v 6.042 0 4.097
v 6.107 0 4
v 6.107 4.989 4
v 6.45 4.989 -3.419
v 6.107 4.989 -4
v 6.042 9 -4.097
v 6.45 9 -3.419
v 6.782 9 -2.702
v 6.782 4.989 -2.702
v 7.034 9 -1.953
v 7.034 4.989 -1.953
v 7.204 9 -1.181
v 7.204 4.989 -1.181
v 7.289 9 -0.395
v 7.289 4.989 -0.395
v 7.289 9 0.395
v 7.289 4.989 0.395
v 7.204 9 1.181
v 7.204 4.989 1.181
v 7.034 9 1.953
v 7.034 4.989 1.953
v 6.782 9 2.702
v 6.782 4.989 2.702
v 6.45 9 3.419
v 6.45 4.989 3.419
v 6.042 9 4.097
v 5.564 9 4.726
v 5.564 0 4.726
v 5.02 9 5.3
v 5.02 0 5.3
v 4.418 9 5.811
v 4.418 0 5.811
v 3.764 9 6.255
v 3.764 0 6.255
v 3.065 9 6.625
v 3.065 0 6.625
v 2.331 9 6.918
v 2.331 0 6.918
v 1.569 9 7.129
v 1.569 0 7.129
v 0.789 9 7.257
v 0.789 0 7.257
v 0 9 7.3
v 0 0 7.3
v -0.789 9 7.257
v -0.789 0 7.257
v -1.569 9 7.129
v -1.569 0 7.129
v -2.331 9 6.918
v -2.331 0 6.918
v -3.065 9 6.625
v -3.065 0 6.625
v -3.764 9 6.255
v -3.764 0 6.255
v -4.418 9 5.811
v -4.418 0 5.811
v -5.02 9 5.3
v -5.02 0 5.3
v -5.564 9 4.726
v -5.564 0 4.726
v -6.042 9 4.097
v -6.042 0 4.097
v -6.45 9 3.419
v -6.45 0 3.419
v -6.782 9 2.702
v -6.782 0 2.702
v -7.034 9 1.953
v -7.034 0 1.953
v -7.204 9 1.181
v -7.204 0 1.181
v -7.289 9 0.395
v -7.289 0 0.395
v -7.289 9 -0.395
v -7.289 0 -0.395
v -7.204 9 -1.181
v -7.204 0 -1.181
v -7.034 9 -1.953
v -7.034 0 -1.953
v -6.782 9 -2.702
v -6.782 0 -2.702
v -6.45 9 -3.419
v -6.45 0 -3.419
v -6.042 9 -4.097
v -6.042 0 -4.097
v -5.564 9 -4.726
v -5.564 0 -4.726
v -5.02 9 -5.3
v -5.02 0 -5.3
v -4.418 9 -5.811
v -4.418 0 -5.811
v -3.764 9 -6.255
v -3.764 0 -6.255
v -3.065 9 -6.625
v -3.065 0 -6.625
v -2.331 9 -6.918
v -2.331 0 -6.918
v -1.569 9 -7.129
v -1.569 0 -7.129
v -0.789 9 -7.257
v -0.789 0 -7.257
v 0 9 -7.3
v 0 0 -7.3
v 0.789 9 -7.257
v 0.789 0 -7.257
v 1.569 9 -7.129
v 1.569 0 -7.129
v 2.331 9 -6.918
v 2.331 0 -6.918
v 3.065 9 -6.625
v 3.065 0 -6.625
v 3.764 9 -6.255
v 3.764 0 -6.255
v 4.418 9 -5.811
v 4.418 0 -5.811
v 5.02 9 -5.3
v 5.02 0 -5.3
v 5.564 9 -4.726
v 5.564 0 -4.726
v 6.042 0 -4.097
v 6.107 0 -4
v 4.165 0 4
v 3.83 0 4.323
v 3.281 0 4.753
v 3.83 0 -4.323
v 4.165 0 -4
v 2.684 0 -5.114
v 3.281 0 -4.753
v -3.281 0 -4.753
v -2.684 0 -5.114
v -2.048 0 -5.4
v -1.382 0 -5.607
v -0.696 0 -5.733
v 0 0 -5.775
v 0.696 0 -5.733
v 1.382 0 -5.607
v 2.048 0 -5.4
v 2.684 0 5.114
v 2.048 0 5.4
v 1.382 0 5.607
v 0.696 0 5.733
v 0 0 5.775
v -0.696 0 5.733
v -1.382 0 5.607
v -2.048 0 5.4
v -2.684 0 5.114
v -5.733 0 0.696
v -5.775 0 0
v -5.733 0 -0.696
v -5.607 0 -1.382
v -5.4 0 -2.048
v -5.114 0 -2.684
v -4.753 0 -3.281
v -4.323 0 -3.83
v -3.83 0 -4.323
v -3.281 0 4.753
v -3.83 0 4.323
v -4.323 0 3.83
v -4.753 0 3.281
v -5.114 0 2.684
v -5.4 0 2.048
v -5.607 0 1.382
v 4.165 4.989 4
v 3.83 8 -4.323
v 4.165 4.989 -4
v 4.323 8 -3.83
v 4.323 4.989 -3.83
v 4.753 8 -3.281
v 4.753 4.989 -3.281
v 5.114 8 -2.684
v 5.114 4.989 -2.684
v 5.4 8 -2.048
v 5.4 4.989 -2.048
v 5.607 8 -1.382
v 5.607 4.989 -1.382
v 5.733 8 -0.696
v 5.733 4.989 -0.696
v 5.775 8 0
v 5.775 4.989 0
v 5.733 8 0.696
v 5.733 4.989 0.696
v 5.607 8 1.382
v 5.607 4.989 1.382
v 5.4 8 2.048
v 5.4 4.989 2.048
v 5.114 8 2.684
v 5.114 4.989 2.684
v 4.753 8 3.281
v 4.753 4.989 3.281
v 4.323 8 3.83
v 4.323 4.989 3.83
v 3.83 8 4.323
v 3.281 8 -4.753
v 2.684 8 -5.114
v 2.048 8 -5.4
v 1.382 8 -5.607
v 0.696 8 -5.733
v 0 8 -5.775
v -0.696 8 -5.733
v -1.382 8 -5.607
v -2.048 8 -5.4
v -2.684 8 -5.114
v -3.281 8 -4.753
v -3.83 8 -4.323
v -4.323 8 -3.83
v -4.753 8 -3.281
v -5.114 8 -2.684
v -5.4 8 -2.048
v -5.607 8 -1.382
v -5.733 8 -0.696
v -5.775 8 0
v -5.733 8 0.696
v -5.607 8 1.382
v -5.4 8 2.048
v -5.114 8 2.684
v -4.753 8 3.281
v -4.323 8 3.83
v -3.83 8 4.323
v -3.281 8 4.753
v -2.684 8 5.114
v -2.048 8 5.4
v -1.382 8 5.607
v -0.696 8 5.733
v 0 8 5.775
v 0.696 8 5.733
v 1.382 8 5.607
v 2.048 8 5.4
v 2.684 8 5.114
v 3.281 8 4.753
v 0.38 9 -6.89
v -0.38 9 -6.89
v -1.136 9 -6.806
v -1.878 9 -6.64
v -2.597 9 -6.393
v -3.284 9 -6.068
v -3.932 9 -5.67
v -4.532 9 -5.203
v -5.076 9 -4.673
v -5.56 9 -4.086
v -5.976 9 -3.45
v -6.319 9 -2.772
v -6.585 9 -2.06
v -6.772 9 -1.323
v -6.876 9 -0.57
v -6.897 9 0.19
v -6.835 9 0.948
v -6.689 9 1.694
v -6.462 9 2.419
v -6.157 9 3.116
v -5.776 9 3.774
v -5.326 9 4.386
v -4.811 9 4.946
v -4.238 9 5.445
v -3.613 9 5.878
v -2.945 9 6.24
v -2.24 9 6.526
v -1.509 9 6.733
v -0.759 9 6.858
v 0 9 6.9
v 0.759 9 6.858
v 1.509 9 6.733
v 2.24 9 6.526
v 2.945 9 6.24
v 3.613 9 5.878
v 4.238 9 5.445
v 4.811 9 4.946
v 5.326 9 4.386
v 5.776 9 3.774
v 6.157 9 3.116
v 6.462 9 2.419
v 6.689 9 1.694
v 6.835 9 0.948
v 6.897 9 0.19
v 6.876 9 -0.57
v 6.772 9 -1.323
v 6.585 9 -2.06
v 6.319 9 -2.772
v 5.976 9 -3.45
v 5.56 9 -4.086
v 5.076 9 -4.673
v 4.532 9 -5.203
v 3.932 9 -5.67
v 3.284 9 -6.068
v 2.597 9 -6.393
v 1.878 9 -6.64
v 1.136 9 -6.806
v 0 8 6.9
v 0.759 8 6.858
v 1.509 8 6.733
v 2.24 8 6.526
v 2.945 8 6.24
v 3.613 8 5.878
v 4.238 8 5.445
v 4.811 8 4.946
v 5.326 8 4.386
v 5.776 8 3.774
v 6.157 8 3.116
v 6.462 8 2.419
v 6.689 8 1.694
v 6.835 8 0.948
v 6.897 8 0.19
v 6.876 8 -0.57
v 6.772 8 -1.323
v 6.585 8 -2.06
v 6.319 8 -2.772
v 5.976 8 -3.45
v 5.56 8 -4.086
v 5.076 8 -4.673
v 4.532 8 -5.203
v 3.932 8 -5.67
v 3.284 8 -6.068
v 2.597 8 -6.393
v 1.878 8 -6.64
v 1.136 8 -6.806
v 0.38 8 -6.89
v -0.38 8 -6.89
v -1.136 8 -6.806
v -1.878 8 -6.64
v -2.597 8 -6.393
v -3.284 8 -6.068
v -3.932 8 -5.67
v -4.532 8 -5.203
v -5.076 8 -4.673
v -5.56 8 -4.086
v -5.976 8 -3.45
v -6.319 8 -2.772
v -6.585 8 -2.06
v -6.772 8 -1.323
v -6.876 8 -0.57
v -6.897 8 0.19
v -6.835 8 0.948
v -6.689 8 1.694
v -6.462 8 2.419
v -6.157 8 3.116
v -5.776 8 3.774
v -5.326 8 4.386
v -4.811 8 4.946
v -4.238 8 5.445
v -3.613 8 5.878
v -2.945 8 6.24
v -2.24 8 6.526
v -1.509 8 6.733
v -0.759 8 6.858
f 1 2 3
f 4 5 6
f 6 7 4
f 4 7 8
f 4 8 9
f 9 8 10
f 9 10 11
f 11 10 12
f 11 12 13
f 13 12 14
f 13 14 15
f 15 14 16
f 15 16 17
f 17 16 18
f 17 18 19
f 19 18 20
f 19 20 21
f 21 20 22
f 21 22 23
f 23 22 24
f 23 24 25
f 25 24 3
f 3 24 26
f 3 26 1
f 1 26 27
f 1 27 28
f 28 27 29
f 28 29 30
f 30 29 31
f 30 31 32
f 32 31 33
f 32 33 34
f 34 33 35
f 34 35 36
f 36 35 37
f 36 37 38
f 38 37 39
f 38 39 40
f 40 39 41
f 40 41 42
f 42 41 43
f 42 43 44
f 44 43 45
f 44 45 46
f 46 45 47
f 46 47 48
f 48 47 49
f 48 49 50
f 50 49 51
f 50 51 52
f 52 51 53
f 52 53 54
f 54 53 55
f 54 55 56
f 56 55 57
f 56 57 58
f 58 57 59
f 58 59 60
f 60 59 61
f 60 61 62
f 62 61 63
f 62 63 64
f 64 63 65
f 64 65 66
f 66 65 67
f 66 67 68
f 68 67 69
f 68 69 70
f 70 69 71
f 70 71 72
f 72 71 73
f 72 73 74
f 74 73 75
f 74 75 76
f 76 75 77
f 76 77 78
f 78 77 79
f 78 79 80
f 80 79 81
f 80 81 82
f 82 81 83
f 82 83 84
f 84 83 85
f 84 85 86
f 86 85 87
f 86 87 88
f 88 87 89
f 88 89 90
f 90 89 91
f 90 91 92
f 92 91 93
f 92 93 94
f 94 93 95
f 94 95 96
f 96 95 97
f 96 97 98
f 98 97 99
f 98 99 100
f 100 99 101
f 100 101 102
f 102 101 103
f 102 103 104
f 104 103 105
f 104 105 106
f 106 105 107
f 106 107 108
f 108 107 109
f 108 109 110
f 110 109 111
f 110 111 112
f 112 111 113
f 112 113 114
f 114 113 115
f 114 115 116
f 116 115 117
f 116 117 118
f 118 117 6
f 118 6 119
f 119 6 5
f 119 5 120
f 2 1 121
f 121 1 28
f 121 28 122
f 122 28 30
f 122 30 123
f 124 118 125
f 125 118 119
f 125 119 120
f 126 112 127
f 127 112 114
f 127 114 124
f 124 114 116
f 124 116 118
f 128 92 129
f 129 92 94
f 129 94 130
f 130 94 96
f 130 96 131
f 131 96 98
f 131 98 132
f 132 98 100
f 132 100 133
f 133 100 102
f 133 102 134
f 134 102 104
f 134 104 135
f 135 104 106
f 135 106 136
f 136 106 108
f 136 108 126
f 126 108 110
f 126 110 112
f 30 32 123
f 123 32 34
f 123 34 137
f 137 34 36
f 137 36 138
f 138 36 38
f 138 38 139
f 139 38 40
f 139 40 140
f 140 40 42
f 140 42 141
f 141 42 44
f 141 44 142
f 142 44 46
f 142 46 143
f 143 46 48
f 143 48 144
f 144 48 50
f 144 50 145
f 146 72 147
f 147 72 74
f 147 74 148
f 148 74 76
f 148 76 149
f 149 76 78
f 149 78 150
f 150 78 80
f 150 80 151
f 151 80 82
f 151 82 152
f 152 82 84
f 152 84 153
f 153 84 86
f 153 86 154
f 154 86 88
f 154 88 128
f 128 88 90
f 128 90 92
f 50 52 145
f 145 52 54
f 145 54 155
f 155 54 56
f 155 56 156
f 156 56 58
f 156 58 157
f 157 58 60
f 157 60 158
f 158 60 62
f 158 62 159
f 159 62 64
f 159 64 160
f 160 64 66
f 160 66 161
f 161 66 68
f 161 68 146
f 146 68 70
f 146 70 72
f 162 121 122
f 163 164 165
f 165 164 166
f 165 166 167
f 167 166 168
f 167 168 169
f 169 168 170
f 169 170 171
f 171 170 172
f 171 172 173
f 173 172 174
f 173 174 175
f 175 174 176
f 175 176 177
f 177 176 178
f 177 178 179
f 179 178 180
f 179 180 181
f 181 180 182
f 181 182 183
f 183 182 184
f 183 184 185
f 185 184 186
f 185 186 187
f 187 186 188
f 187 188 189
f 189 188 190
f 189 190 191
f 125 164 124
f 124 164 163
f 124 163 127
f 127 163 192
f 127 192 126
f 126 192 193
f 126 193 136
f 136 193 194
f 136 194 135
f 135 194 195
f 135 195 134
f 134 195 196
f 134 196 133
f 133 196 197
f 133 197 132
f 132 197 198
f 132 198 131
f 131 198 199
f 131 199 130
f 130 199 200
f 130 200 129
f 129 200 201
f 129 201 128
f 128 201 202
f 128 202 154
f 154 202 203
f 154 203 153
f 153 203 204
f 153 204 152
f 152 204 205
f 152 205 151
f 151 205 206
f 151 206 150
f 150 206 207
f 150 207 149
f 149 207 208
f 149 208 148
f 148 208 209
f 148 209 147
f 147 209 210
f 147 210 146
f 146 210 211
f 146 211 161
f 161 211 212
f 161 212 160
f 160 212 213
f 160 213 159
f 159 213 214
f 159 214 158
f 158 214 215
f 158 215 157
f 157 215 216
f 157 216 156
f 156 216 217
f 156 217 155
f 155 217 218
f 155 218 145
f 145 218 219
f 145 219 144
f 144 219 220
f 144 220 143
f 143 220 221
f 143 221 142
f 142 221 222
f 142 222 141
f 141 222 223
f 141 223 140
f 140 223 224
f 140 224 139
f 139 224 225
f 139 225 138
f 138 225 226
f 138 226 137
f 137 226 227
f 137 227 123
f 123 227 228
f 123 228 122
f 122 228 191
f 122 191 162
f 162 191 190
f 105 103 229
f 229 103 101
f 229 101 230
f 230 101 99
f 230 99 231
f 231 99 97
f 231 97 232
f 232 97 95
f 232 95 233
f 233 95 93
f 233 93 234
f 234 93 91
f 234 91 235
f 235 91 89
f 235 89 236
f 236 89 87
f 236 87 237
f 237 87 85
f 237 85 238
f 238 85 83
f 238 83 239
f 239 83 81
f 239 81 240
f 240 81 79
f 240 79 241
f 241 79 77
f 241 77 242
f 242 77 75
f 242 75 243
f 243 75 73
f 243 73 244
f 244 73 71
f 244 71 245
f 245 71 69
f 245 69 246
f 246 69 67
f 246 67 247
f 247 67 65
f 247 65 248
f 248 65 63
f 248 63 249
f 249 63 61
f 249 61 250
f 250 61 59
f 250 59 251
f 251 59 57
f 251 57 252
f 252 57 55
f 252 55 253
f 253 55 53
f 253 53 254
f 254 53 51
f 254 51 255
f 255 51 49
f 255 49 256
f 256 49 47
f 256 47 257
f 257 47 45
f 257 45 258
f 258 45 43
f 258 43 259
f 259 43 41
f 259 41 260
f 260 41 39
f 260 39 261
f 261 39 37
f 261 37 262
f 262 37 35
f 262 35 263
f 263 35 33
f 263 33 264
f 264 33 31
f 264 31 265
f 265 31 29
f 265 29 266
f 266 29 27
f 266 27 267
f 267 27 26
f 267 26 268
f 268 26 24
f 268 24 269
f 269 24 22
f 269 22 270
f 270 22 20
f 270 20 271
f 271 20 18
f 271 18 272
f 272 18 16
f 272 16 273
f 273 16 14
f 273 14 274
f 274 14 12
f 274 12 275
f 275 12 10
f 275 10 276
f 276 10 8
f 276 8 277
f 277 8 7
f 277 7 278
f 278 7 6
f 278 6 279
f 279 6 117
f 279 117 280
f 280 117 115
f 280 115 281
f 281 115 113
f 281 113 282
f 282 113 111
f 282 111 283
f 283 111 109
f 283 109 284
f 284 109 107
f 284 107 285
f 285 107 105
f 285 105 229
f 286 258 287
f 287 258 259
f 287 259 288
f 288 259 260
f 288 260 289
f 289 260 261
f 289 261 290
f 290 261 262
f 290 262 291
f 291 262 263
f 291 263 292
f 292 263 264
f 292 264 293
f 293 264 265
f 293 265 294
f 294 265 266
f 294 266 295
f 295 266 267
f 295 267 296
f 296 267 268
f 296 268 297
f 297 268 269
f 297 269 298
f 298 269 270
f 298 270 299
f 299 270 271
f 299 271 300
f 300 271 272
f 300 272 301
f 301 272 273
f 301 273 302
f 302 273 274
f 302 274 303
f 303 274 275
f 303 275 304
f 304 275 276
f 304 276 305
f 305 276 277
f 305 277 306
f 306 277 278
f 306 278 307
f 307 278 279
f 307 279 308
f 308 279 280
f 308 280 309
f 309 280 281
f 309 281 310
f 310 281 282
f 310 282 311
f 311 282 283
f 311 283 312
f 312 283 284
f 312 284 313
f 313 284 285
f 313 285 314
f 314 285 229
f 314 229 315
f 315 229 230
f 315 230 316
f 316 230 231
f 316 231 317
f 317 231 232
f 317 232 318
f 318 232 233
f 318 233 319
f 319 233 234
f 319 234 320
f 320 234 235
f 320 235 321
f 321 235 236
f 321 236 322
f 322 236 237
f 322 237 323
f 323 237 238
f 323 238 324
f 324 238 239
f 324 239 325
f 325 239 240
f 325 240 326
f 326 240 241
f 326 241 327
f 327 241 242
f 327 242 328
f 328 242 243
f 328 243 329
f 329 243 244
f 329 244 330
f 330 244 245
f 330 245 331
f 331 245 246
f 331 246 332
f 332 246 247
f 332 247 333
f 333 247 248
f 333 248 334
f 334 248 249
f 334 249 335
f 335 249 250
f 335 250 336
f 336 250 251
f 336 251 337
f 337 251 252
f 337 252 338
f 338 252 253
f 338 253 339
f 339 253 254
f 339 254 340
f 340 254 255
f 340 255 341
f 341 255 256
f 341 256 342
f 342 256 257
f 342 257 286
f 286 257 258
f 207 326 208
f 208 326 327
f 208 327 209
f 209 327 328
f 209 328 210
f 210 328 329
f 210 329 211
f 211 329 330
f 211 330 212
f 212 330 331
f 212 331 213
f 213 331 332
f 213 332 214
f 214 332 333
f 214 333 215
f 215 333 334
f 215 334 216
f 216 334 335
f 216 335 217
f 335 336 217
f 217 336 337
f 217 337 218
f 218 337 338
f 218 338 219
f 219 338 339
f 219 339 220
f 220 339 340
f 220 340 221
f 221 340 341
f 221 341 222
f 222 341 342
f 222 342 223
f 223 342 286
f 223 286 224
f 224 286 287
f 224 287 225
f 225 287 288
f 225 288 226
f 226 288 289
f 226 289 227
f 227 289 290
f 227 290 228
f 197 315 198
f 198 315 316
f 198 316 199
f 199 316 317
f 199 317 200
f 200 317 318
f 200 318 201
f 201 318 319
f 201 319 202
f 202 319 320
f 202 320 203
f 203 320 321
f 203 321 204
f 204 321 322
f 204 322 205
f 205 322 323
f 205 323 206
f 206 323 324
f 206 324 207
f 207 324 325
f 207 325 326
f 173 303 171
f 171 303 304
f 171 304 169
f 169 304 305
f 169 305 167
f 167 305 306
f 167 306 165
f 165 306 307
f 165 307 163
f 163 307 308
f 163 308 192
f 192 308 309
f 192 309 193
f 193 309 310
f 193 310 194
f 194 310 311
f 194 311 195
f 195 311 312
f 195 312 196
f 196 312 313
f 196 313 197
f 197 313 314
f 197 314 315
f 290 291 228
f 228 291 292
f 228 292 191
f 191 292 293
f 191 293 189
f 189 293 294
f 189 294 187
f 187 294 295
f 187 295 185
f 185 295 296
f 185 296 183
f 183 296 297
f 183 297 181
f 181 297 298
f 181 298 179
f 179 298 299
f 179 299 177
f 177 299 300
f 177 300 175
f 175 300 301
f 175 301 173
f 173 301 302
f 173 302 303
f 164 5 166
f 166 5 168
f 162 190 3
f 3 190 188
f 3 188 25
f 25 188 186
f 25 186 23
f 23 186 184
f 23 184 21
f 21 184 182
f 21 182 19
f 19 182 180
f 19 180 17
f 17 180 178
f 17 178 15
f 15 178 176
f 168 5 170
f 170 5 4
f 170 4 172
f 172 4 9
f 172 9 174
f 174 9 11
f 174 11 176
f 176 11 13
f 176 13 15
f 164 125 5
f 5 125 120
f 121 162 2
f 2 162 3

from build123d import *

# Parameters (mm, degrees)
SKETCH1_R           = 7.3
BOSS_EXTRUDE1_DEPTH = 9
SKETCH2_R           = 6.9
CUT_EXTRUDE1_DEPTH  = 1
SKETCH3_R           = 5
CUT_EXTRUDE2_DEPTH  = 7
SKETCH4_R           = 5.775
CUT_EXTRUDE3_DEPTH  = 9
SKETCH5_W           = 4
SKETCH5_H           = 4.989216575
CUT_EXTRUDE4_DEPTH  = 6


with BuildPart() as part:
    # Sketch1 → Boss-Extrude1 (new body)
    with BuildSketch(Plane(origin=(0, 0, 0), x_dir=(1, 0, 0), z_dir=(0, 1, 0))):
        Circle(SKETCH1_R)
    extrude(amount=BOSS_EXTRUDE1_DEPTH)

    # Sketch2 → Cut-Extrude1 (cut)
    with BuildSketch(Plane(origin=(0, 9, 0), x_dir=(1, 0, 0), z_dir=(0, 1, 0))):
        Circle(SKETCH2_R)
    extrude(amount=-CUT_EXTRUDE1_DEPTH, mode=Mode.SUBTRACT)

    # Sketch3 → Cut-Extrude2 (cut)
    with BuildSketch(Plane.XZ):
        Circle(SKETCH3_R)
    extrude(amount=-CUT_EXTRUDE2_DEPTH, mode=Mode.SUBTRACT)

    # Sketch4 → Cut-Extrude3 (cut, through all)
    with BuildSketch(Plane(origin=(0, 8, 0), x_dir=(1, 0, 0), z_dir=(0, 1, 0))):
        Circle(SKETCH4_R)
    extrude(amount=-CUT_EXTRUDE3_DEPTH, mode=Mode.SUBTRACT)

    # Sketch5 → Cut-Extrude4 (cut)
    with BuildSketch(Plane(origin=(7.3, 0, 0), x_dir=(0, 0, -1), z_dir=(1, 0, 0))):
        with Locations((-2, 2.494608288)):
            Rectangle(SKETCH5_W, SKETCH5_H)
        with Locations((2, 2.494608288)):
            Rectangle(SKETCH5_W, SKETCH5_H)
    extrude(amount=-CUT_EXTRUDE4_DEPTH, mode=Mode.SUBTRACT)


solid = part.part
